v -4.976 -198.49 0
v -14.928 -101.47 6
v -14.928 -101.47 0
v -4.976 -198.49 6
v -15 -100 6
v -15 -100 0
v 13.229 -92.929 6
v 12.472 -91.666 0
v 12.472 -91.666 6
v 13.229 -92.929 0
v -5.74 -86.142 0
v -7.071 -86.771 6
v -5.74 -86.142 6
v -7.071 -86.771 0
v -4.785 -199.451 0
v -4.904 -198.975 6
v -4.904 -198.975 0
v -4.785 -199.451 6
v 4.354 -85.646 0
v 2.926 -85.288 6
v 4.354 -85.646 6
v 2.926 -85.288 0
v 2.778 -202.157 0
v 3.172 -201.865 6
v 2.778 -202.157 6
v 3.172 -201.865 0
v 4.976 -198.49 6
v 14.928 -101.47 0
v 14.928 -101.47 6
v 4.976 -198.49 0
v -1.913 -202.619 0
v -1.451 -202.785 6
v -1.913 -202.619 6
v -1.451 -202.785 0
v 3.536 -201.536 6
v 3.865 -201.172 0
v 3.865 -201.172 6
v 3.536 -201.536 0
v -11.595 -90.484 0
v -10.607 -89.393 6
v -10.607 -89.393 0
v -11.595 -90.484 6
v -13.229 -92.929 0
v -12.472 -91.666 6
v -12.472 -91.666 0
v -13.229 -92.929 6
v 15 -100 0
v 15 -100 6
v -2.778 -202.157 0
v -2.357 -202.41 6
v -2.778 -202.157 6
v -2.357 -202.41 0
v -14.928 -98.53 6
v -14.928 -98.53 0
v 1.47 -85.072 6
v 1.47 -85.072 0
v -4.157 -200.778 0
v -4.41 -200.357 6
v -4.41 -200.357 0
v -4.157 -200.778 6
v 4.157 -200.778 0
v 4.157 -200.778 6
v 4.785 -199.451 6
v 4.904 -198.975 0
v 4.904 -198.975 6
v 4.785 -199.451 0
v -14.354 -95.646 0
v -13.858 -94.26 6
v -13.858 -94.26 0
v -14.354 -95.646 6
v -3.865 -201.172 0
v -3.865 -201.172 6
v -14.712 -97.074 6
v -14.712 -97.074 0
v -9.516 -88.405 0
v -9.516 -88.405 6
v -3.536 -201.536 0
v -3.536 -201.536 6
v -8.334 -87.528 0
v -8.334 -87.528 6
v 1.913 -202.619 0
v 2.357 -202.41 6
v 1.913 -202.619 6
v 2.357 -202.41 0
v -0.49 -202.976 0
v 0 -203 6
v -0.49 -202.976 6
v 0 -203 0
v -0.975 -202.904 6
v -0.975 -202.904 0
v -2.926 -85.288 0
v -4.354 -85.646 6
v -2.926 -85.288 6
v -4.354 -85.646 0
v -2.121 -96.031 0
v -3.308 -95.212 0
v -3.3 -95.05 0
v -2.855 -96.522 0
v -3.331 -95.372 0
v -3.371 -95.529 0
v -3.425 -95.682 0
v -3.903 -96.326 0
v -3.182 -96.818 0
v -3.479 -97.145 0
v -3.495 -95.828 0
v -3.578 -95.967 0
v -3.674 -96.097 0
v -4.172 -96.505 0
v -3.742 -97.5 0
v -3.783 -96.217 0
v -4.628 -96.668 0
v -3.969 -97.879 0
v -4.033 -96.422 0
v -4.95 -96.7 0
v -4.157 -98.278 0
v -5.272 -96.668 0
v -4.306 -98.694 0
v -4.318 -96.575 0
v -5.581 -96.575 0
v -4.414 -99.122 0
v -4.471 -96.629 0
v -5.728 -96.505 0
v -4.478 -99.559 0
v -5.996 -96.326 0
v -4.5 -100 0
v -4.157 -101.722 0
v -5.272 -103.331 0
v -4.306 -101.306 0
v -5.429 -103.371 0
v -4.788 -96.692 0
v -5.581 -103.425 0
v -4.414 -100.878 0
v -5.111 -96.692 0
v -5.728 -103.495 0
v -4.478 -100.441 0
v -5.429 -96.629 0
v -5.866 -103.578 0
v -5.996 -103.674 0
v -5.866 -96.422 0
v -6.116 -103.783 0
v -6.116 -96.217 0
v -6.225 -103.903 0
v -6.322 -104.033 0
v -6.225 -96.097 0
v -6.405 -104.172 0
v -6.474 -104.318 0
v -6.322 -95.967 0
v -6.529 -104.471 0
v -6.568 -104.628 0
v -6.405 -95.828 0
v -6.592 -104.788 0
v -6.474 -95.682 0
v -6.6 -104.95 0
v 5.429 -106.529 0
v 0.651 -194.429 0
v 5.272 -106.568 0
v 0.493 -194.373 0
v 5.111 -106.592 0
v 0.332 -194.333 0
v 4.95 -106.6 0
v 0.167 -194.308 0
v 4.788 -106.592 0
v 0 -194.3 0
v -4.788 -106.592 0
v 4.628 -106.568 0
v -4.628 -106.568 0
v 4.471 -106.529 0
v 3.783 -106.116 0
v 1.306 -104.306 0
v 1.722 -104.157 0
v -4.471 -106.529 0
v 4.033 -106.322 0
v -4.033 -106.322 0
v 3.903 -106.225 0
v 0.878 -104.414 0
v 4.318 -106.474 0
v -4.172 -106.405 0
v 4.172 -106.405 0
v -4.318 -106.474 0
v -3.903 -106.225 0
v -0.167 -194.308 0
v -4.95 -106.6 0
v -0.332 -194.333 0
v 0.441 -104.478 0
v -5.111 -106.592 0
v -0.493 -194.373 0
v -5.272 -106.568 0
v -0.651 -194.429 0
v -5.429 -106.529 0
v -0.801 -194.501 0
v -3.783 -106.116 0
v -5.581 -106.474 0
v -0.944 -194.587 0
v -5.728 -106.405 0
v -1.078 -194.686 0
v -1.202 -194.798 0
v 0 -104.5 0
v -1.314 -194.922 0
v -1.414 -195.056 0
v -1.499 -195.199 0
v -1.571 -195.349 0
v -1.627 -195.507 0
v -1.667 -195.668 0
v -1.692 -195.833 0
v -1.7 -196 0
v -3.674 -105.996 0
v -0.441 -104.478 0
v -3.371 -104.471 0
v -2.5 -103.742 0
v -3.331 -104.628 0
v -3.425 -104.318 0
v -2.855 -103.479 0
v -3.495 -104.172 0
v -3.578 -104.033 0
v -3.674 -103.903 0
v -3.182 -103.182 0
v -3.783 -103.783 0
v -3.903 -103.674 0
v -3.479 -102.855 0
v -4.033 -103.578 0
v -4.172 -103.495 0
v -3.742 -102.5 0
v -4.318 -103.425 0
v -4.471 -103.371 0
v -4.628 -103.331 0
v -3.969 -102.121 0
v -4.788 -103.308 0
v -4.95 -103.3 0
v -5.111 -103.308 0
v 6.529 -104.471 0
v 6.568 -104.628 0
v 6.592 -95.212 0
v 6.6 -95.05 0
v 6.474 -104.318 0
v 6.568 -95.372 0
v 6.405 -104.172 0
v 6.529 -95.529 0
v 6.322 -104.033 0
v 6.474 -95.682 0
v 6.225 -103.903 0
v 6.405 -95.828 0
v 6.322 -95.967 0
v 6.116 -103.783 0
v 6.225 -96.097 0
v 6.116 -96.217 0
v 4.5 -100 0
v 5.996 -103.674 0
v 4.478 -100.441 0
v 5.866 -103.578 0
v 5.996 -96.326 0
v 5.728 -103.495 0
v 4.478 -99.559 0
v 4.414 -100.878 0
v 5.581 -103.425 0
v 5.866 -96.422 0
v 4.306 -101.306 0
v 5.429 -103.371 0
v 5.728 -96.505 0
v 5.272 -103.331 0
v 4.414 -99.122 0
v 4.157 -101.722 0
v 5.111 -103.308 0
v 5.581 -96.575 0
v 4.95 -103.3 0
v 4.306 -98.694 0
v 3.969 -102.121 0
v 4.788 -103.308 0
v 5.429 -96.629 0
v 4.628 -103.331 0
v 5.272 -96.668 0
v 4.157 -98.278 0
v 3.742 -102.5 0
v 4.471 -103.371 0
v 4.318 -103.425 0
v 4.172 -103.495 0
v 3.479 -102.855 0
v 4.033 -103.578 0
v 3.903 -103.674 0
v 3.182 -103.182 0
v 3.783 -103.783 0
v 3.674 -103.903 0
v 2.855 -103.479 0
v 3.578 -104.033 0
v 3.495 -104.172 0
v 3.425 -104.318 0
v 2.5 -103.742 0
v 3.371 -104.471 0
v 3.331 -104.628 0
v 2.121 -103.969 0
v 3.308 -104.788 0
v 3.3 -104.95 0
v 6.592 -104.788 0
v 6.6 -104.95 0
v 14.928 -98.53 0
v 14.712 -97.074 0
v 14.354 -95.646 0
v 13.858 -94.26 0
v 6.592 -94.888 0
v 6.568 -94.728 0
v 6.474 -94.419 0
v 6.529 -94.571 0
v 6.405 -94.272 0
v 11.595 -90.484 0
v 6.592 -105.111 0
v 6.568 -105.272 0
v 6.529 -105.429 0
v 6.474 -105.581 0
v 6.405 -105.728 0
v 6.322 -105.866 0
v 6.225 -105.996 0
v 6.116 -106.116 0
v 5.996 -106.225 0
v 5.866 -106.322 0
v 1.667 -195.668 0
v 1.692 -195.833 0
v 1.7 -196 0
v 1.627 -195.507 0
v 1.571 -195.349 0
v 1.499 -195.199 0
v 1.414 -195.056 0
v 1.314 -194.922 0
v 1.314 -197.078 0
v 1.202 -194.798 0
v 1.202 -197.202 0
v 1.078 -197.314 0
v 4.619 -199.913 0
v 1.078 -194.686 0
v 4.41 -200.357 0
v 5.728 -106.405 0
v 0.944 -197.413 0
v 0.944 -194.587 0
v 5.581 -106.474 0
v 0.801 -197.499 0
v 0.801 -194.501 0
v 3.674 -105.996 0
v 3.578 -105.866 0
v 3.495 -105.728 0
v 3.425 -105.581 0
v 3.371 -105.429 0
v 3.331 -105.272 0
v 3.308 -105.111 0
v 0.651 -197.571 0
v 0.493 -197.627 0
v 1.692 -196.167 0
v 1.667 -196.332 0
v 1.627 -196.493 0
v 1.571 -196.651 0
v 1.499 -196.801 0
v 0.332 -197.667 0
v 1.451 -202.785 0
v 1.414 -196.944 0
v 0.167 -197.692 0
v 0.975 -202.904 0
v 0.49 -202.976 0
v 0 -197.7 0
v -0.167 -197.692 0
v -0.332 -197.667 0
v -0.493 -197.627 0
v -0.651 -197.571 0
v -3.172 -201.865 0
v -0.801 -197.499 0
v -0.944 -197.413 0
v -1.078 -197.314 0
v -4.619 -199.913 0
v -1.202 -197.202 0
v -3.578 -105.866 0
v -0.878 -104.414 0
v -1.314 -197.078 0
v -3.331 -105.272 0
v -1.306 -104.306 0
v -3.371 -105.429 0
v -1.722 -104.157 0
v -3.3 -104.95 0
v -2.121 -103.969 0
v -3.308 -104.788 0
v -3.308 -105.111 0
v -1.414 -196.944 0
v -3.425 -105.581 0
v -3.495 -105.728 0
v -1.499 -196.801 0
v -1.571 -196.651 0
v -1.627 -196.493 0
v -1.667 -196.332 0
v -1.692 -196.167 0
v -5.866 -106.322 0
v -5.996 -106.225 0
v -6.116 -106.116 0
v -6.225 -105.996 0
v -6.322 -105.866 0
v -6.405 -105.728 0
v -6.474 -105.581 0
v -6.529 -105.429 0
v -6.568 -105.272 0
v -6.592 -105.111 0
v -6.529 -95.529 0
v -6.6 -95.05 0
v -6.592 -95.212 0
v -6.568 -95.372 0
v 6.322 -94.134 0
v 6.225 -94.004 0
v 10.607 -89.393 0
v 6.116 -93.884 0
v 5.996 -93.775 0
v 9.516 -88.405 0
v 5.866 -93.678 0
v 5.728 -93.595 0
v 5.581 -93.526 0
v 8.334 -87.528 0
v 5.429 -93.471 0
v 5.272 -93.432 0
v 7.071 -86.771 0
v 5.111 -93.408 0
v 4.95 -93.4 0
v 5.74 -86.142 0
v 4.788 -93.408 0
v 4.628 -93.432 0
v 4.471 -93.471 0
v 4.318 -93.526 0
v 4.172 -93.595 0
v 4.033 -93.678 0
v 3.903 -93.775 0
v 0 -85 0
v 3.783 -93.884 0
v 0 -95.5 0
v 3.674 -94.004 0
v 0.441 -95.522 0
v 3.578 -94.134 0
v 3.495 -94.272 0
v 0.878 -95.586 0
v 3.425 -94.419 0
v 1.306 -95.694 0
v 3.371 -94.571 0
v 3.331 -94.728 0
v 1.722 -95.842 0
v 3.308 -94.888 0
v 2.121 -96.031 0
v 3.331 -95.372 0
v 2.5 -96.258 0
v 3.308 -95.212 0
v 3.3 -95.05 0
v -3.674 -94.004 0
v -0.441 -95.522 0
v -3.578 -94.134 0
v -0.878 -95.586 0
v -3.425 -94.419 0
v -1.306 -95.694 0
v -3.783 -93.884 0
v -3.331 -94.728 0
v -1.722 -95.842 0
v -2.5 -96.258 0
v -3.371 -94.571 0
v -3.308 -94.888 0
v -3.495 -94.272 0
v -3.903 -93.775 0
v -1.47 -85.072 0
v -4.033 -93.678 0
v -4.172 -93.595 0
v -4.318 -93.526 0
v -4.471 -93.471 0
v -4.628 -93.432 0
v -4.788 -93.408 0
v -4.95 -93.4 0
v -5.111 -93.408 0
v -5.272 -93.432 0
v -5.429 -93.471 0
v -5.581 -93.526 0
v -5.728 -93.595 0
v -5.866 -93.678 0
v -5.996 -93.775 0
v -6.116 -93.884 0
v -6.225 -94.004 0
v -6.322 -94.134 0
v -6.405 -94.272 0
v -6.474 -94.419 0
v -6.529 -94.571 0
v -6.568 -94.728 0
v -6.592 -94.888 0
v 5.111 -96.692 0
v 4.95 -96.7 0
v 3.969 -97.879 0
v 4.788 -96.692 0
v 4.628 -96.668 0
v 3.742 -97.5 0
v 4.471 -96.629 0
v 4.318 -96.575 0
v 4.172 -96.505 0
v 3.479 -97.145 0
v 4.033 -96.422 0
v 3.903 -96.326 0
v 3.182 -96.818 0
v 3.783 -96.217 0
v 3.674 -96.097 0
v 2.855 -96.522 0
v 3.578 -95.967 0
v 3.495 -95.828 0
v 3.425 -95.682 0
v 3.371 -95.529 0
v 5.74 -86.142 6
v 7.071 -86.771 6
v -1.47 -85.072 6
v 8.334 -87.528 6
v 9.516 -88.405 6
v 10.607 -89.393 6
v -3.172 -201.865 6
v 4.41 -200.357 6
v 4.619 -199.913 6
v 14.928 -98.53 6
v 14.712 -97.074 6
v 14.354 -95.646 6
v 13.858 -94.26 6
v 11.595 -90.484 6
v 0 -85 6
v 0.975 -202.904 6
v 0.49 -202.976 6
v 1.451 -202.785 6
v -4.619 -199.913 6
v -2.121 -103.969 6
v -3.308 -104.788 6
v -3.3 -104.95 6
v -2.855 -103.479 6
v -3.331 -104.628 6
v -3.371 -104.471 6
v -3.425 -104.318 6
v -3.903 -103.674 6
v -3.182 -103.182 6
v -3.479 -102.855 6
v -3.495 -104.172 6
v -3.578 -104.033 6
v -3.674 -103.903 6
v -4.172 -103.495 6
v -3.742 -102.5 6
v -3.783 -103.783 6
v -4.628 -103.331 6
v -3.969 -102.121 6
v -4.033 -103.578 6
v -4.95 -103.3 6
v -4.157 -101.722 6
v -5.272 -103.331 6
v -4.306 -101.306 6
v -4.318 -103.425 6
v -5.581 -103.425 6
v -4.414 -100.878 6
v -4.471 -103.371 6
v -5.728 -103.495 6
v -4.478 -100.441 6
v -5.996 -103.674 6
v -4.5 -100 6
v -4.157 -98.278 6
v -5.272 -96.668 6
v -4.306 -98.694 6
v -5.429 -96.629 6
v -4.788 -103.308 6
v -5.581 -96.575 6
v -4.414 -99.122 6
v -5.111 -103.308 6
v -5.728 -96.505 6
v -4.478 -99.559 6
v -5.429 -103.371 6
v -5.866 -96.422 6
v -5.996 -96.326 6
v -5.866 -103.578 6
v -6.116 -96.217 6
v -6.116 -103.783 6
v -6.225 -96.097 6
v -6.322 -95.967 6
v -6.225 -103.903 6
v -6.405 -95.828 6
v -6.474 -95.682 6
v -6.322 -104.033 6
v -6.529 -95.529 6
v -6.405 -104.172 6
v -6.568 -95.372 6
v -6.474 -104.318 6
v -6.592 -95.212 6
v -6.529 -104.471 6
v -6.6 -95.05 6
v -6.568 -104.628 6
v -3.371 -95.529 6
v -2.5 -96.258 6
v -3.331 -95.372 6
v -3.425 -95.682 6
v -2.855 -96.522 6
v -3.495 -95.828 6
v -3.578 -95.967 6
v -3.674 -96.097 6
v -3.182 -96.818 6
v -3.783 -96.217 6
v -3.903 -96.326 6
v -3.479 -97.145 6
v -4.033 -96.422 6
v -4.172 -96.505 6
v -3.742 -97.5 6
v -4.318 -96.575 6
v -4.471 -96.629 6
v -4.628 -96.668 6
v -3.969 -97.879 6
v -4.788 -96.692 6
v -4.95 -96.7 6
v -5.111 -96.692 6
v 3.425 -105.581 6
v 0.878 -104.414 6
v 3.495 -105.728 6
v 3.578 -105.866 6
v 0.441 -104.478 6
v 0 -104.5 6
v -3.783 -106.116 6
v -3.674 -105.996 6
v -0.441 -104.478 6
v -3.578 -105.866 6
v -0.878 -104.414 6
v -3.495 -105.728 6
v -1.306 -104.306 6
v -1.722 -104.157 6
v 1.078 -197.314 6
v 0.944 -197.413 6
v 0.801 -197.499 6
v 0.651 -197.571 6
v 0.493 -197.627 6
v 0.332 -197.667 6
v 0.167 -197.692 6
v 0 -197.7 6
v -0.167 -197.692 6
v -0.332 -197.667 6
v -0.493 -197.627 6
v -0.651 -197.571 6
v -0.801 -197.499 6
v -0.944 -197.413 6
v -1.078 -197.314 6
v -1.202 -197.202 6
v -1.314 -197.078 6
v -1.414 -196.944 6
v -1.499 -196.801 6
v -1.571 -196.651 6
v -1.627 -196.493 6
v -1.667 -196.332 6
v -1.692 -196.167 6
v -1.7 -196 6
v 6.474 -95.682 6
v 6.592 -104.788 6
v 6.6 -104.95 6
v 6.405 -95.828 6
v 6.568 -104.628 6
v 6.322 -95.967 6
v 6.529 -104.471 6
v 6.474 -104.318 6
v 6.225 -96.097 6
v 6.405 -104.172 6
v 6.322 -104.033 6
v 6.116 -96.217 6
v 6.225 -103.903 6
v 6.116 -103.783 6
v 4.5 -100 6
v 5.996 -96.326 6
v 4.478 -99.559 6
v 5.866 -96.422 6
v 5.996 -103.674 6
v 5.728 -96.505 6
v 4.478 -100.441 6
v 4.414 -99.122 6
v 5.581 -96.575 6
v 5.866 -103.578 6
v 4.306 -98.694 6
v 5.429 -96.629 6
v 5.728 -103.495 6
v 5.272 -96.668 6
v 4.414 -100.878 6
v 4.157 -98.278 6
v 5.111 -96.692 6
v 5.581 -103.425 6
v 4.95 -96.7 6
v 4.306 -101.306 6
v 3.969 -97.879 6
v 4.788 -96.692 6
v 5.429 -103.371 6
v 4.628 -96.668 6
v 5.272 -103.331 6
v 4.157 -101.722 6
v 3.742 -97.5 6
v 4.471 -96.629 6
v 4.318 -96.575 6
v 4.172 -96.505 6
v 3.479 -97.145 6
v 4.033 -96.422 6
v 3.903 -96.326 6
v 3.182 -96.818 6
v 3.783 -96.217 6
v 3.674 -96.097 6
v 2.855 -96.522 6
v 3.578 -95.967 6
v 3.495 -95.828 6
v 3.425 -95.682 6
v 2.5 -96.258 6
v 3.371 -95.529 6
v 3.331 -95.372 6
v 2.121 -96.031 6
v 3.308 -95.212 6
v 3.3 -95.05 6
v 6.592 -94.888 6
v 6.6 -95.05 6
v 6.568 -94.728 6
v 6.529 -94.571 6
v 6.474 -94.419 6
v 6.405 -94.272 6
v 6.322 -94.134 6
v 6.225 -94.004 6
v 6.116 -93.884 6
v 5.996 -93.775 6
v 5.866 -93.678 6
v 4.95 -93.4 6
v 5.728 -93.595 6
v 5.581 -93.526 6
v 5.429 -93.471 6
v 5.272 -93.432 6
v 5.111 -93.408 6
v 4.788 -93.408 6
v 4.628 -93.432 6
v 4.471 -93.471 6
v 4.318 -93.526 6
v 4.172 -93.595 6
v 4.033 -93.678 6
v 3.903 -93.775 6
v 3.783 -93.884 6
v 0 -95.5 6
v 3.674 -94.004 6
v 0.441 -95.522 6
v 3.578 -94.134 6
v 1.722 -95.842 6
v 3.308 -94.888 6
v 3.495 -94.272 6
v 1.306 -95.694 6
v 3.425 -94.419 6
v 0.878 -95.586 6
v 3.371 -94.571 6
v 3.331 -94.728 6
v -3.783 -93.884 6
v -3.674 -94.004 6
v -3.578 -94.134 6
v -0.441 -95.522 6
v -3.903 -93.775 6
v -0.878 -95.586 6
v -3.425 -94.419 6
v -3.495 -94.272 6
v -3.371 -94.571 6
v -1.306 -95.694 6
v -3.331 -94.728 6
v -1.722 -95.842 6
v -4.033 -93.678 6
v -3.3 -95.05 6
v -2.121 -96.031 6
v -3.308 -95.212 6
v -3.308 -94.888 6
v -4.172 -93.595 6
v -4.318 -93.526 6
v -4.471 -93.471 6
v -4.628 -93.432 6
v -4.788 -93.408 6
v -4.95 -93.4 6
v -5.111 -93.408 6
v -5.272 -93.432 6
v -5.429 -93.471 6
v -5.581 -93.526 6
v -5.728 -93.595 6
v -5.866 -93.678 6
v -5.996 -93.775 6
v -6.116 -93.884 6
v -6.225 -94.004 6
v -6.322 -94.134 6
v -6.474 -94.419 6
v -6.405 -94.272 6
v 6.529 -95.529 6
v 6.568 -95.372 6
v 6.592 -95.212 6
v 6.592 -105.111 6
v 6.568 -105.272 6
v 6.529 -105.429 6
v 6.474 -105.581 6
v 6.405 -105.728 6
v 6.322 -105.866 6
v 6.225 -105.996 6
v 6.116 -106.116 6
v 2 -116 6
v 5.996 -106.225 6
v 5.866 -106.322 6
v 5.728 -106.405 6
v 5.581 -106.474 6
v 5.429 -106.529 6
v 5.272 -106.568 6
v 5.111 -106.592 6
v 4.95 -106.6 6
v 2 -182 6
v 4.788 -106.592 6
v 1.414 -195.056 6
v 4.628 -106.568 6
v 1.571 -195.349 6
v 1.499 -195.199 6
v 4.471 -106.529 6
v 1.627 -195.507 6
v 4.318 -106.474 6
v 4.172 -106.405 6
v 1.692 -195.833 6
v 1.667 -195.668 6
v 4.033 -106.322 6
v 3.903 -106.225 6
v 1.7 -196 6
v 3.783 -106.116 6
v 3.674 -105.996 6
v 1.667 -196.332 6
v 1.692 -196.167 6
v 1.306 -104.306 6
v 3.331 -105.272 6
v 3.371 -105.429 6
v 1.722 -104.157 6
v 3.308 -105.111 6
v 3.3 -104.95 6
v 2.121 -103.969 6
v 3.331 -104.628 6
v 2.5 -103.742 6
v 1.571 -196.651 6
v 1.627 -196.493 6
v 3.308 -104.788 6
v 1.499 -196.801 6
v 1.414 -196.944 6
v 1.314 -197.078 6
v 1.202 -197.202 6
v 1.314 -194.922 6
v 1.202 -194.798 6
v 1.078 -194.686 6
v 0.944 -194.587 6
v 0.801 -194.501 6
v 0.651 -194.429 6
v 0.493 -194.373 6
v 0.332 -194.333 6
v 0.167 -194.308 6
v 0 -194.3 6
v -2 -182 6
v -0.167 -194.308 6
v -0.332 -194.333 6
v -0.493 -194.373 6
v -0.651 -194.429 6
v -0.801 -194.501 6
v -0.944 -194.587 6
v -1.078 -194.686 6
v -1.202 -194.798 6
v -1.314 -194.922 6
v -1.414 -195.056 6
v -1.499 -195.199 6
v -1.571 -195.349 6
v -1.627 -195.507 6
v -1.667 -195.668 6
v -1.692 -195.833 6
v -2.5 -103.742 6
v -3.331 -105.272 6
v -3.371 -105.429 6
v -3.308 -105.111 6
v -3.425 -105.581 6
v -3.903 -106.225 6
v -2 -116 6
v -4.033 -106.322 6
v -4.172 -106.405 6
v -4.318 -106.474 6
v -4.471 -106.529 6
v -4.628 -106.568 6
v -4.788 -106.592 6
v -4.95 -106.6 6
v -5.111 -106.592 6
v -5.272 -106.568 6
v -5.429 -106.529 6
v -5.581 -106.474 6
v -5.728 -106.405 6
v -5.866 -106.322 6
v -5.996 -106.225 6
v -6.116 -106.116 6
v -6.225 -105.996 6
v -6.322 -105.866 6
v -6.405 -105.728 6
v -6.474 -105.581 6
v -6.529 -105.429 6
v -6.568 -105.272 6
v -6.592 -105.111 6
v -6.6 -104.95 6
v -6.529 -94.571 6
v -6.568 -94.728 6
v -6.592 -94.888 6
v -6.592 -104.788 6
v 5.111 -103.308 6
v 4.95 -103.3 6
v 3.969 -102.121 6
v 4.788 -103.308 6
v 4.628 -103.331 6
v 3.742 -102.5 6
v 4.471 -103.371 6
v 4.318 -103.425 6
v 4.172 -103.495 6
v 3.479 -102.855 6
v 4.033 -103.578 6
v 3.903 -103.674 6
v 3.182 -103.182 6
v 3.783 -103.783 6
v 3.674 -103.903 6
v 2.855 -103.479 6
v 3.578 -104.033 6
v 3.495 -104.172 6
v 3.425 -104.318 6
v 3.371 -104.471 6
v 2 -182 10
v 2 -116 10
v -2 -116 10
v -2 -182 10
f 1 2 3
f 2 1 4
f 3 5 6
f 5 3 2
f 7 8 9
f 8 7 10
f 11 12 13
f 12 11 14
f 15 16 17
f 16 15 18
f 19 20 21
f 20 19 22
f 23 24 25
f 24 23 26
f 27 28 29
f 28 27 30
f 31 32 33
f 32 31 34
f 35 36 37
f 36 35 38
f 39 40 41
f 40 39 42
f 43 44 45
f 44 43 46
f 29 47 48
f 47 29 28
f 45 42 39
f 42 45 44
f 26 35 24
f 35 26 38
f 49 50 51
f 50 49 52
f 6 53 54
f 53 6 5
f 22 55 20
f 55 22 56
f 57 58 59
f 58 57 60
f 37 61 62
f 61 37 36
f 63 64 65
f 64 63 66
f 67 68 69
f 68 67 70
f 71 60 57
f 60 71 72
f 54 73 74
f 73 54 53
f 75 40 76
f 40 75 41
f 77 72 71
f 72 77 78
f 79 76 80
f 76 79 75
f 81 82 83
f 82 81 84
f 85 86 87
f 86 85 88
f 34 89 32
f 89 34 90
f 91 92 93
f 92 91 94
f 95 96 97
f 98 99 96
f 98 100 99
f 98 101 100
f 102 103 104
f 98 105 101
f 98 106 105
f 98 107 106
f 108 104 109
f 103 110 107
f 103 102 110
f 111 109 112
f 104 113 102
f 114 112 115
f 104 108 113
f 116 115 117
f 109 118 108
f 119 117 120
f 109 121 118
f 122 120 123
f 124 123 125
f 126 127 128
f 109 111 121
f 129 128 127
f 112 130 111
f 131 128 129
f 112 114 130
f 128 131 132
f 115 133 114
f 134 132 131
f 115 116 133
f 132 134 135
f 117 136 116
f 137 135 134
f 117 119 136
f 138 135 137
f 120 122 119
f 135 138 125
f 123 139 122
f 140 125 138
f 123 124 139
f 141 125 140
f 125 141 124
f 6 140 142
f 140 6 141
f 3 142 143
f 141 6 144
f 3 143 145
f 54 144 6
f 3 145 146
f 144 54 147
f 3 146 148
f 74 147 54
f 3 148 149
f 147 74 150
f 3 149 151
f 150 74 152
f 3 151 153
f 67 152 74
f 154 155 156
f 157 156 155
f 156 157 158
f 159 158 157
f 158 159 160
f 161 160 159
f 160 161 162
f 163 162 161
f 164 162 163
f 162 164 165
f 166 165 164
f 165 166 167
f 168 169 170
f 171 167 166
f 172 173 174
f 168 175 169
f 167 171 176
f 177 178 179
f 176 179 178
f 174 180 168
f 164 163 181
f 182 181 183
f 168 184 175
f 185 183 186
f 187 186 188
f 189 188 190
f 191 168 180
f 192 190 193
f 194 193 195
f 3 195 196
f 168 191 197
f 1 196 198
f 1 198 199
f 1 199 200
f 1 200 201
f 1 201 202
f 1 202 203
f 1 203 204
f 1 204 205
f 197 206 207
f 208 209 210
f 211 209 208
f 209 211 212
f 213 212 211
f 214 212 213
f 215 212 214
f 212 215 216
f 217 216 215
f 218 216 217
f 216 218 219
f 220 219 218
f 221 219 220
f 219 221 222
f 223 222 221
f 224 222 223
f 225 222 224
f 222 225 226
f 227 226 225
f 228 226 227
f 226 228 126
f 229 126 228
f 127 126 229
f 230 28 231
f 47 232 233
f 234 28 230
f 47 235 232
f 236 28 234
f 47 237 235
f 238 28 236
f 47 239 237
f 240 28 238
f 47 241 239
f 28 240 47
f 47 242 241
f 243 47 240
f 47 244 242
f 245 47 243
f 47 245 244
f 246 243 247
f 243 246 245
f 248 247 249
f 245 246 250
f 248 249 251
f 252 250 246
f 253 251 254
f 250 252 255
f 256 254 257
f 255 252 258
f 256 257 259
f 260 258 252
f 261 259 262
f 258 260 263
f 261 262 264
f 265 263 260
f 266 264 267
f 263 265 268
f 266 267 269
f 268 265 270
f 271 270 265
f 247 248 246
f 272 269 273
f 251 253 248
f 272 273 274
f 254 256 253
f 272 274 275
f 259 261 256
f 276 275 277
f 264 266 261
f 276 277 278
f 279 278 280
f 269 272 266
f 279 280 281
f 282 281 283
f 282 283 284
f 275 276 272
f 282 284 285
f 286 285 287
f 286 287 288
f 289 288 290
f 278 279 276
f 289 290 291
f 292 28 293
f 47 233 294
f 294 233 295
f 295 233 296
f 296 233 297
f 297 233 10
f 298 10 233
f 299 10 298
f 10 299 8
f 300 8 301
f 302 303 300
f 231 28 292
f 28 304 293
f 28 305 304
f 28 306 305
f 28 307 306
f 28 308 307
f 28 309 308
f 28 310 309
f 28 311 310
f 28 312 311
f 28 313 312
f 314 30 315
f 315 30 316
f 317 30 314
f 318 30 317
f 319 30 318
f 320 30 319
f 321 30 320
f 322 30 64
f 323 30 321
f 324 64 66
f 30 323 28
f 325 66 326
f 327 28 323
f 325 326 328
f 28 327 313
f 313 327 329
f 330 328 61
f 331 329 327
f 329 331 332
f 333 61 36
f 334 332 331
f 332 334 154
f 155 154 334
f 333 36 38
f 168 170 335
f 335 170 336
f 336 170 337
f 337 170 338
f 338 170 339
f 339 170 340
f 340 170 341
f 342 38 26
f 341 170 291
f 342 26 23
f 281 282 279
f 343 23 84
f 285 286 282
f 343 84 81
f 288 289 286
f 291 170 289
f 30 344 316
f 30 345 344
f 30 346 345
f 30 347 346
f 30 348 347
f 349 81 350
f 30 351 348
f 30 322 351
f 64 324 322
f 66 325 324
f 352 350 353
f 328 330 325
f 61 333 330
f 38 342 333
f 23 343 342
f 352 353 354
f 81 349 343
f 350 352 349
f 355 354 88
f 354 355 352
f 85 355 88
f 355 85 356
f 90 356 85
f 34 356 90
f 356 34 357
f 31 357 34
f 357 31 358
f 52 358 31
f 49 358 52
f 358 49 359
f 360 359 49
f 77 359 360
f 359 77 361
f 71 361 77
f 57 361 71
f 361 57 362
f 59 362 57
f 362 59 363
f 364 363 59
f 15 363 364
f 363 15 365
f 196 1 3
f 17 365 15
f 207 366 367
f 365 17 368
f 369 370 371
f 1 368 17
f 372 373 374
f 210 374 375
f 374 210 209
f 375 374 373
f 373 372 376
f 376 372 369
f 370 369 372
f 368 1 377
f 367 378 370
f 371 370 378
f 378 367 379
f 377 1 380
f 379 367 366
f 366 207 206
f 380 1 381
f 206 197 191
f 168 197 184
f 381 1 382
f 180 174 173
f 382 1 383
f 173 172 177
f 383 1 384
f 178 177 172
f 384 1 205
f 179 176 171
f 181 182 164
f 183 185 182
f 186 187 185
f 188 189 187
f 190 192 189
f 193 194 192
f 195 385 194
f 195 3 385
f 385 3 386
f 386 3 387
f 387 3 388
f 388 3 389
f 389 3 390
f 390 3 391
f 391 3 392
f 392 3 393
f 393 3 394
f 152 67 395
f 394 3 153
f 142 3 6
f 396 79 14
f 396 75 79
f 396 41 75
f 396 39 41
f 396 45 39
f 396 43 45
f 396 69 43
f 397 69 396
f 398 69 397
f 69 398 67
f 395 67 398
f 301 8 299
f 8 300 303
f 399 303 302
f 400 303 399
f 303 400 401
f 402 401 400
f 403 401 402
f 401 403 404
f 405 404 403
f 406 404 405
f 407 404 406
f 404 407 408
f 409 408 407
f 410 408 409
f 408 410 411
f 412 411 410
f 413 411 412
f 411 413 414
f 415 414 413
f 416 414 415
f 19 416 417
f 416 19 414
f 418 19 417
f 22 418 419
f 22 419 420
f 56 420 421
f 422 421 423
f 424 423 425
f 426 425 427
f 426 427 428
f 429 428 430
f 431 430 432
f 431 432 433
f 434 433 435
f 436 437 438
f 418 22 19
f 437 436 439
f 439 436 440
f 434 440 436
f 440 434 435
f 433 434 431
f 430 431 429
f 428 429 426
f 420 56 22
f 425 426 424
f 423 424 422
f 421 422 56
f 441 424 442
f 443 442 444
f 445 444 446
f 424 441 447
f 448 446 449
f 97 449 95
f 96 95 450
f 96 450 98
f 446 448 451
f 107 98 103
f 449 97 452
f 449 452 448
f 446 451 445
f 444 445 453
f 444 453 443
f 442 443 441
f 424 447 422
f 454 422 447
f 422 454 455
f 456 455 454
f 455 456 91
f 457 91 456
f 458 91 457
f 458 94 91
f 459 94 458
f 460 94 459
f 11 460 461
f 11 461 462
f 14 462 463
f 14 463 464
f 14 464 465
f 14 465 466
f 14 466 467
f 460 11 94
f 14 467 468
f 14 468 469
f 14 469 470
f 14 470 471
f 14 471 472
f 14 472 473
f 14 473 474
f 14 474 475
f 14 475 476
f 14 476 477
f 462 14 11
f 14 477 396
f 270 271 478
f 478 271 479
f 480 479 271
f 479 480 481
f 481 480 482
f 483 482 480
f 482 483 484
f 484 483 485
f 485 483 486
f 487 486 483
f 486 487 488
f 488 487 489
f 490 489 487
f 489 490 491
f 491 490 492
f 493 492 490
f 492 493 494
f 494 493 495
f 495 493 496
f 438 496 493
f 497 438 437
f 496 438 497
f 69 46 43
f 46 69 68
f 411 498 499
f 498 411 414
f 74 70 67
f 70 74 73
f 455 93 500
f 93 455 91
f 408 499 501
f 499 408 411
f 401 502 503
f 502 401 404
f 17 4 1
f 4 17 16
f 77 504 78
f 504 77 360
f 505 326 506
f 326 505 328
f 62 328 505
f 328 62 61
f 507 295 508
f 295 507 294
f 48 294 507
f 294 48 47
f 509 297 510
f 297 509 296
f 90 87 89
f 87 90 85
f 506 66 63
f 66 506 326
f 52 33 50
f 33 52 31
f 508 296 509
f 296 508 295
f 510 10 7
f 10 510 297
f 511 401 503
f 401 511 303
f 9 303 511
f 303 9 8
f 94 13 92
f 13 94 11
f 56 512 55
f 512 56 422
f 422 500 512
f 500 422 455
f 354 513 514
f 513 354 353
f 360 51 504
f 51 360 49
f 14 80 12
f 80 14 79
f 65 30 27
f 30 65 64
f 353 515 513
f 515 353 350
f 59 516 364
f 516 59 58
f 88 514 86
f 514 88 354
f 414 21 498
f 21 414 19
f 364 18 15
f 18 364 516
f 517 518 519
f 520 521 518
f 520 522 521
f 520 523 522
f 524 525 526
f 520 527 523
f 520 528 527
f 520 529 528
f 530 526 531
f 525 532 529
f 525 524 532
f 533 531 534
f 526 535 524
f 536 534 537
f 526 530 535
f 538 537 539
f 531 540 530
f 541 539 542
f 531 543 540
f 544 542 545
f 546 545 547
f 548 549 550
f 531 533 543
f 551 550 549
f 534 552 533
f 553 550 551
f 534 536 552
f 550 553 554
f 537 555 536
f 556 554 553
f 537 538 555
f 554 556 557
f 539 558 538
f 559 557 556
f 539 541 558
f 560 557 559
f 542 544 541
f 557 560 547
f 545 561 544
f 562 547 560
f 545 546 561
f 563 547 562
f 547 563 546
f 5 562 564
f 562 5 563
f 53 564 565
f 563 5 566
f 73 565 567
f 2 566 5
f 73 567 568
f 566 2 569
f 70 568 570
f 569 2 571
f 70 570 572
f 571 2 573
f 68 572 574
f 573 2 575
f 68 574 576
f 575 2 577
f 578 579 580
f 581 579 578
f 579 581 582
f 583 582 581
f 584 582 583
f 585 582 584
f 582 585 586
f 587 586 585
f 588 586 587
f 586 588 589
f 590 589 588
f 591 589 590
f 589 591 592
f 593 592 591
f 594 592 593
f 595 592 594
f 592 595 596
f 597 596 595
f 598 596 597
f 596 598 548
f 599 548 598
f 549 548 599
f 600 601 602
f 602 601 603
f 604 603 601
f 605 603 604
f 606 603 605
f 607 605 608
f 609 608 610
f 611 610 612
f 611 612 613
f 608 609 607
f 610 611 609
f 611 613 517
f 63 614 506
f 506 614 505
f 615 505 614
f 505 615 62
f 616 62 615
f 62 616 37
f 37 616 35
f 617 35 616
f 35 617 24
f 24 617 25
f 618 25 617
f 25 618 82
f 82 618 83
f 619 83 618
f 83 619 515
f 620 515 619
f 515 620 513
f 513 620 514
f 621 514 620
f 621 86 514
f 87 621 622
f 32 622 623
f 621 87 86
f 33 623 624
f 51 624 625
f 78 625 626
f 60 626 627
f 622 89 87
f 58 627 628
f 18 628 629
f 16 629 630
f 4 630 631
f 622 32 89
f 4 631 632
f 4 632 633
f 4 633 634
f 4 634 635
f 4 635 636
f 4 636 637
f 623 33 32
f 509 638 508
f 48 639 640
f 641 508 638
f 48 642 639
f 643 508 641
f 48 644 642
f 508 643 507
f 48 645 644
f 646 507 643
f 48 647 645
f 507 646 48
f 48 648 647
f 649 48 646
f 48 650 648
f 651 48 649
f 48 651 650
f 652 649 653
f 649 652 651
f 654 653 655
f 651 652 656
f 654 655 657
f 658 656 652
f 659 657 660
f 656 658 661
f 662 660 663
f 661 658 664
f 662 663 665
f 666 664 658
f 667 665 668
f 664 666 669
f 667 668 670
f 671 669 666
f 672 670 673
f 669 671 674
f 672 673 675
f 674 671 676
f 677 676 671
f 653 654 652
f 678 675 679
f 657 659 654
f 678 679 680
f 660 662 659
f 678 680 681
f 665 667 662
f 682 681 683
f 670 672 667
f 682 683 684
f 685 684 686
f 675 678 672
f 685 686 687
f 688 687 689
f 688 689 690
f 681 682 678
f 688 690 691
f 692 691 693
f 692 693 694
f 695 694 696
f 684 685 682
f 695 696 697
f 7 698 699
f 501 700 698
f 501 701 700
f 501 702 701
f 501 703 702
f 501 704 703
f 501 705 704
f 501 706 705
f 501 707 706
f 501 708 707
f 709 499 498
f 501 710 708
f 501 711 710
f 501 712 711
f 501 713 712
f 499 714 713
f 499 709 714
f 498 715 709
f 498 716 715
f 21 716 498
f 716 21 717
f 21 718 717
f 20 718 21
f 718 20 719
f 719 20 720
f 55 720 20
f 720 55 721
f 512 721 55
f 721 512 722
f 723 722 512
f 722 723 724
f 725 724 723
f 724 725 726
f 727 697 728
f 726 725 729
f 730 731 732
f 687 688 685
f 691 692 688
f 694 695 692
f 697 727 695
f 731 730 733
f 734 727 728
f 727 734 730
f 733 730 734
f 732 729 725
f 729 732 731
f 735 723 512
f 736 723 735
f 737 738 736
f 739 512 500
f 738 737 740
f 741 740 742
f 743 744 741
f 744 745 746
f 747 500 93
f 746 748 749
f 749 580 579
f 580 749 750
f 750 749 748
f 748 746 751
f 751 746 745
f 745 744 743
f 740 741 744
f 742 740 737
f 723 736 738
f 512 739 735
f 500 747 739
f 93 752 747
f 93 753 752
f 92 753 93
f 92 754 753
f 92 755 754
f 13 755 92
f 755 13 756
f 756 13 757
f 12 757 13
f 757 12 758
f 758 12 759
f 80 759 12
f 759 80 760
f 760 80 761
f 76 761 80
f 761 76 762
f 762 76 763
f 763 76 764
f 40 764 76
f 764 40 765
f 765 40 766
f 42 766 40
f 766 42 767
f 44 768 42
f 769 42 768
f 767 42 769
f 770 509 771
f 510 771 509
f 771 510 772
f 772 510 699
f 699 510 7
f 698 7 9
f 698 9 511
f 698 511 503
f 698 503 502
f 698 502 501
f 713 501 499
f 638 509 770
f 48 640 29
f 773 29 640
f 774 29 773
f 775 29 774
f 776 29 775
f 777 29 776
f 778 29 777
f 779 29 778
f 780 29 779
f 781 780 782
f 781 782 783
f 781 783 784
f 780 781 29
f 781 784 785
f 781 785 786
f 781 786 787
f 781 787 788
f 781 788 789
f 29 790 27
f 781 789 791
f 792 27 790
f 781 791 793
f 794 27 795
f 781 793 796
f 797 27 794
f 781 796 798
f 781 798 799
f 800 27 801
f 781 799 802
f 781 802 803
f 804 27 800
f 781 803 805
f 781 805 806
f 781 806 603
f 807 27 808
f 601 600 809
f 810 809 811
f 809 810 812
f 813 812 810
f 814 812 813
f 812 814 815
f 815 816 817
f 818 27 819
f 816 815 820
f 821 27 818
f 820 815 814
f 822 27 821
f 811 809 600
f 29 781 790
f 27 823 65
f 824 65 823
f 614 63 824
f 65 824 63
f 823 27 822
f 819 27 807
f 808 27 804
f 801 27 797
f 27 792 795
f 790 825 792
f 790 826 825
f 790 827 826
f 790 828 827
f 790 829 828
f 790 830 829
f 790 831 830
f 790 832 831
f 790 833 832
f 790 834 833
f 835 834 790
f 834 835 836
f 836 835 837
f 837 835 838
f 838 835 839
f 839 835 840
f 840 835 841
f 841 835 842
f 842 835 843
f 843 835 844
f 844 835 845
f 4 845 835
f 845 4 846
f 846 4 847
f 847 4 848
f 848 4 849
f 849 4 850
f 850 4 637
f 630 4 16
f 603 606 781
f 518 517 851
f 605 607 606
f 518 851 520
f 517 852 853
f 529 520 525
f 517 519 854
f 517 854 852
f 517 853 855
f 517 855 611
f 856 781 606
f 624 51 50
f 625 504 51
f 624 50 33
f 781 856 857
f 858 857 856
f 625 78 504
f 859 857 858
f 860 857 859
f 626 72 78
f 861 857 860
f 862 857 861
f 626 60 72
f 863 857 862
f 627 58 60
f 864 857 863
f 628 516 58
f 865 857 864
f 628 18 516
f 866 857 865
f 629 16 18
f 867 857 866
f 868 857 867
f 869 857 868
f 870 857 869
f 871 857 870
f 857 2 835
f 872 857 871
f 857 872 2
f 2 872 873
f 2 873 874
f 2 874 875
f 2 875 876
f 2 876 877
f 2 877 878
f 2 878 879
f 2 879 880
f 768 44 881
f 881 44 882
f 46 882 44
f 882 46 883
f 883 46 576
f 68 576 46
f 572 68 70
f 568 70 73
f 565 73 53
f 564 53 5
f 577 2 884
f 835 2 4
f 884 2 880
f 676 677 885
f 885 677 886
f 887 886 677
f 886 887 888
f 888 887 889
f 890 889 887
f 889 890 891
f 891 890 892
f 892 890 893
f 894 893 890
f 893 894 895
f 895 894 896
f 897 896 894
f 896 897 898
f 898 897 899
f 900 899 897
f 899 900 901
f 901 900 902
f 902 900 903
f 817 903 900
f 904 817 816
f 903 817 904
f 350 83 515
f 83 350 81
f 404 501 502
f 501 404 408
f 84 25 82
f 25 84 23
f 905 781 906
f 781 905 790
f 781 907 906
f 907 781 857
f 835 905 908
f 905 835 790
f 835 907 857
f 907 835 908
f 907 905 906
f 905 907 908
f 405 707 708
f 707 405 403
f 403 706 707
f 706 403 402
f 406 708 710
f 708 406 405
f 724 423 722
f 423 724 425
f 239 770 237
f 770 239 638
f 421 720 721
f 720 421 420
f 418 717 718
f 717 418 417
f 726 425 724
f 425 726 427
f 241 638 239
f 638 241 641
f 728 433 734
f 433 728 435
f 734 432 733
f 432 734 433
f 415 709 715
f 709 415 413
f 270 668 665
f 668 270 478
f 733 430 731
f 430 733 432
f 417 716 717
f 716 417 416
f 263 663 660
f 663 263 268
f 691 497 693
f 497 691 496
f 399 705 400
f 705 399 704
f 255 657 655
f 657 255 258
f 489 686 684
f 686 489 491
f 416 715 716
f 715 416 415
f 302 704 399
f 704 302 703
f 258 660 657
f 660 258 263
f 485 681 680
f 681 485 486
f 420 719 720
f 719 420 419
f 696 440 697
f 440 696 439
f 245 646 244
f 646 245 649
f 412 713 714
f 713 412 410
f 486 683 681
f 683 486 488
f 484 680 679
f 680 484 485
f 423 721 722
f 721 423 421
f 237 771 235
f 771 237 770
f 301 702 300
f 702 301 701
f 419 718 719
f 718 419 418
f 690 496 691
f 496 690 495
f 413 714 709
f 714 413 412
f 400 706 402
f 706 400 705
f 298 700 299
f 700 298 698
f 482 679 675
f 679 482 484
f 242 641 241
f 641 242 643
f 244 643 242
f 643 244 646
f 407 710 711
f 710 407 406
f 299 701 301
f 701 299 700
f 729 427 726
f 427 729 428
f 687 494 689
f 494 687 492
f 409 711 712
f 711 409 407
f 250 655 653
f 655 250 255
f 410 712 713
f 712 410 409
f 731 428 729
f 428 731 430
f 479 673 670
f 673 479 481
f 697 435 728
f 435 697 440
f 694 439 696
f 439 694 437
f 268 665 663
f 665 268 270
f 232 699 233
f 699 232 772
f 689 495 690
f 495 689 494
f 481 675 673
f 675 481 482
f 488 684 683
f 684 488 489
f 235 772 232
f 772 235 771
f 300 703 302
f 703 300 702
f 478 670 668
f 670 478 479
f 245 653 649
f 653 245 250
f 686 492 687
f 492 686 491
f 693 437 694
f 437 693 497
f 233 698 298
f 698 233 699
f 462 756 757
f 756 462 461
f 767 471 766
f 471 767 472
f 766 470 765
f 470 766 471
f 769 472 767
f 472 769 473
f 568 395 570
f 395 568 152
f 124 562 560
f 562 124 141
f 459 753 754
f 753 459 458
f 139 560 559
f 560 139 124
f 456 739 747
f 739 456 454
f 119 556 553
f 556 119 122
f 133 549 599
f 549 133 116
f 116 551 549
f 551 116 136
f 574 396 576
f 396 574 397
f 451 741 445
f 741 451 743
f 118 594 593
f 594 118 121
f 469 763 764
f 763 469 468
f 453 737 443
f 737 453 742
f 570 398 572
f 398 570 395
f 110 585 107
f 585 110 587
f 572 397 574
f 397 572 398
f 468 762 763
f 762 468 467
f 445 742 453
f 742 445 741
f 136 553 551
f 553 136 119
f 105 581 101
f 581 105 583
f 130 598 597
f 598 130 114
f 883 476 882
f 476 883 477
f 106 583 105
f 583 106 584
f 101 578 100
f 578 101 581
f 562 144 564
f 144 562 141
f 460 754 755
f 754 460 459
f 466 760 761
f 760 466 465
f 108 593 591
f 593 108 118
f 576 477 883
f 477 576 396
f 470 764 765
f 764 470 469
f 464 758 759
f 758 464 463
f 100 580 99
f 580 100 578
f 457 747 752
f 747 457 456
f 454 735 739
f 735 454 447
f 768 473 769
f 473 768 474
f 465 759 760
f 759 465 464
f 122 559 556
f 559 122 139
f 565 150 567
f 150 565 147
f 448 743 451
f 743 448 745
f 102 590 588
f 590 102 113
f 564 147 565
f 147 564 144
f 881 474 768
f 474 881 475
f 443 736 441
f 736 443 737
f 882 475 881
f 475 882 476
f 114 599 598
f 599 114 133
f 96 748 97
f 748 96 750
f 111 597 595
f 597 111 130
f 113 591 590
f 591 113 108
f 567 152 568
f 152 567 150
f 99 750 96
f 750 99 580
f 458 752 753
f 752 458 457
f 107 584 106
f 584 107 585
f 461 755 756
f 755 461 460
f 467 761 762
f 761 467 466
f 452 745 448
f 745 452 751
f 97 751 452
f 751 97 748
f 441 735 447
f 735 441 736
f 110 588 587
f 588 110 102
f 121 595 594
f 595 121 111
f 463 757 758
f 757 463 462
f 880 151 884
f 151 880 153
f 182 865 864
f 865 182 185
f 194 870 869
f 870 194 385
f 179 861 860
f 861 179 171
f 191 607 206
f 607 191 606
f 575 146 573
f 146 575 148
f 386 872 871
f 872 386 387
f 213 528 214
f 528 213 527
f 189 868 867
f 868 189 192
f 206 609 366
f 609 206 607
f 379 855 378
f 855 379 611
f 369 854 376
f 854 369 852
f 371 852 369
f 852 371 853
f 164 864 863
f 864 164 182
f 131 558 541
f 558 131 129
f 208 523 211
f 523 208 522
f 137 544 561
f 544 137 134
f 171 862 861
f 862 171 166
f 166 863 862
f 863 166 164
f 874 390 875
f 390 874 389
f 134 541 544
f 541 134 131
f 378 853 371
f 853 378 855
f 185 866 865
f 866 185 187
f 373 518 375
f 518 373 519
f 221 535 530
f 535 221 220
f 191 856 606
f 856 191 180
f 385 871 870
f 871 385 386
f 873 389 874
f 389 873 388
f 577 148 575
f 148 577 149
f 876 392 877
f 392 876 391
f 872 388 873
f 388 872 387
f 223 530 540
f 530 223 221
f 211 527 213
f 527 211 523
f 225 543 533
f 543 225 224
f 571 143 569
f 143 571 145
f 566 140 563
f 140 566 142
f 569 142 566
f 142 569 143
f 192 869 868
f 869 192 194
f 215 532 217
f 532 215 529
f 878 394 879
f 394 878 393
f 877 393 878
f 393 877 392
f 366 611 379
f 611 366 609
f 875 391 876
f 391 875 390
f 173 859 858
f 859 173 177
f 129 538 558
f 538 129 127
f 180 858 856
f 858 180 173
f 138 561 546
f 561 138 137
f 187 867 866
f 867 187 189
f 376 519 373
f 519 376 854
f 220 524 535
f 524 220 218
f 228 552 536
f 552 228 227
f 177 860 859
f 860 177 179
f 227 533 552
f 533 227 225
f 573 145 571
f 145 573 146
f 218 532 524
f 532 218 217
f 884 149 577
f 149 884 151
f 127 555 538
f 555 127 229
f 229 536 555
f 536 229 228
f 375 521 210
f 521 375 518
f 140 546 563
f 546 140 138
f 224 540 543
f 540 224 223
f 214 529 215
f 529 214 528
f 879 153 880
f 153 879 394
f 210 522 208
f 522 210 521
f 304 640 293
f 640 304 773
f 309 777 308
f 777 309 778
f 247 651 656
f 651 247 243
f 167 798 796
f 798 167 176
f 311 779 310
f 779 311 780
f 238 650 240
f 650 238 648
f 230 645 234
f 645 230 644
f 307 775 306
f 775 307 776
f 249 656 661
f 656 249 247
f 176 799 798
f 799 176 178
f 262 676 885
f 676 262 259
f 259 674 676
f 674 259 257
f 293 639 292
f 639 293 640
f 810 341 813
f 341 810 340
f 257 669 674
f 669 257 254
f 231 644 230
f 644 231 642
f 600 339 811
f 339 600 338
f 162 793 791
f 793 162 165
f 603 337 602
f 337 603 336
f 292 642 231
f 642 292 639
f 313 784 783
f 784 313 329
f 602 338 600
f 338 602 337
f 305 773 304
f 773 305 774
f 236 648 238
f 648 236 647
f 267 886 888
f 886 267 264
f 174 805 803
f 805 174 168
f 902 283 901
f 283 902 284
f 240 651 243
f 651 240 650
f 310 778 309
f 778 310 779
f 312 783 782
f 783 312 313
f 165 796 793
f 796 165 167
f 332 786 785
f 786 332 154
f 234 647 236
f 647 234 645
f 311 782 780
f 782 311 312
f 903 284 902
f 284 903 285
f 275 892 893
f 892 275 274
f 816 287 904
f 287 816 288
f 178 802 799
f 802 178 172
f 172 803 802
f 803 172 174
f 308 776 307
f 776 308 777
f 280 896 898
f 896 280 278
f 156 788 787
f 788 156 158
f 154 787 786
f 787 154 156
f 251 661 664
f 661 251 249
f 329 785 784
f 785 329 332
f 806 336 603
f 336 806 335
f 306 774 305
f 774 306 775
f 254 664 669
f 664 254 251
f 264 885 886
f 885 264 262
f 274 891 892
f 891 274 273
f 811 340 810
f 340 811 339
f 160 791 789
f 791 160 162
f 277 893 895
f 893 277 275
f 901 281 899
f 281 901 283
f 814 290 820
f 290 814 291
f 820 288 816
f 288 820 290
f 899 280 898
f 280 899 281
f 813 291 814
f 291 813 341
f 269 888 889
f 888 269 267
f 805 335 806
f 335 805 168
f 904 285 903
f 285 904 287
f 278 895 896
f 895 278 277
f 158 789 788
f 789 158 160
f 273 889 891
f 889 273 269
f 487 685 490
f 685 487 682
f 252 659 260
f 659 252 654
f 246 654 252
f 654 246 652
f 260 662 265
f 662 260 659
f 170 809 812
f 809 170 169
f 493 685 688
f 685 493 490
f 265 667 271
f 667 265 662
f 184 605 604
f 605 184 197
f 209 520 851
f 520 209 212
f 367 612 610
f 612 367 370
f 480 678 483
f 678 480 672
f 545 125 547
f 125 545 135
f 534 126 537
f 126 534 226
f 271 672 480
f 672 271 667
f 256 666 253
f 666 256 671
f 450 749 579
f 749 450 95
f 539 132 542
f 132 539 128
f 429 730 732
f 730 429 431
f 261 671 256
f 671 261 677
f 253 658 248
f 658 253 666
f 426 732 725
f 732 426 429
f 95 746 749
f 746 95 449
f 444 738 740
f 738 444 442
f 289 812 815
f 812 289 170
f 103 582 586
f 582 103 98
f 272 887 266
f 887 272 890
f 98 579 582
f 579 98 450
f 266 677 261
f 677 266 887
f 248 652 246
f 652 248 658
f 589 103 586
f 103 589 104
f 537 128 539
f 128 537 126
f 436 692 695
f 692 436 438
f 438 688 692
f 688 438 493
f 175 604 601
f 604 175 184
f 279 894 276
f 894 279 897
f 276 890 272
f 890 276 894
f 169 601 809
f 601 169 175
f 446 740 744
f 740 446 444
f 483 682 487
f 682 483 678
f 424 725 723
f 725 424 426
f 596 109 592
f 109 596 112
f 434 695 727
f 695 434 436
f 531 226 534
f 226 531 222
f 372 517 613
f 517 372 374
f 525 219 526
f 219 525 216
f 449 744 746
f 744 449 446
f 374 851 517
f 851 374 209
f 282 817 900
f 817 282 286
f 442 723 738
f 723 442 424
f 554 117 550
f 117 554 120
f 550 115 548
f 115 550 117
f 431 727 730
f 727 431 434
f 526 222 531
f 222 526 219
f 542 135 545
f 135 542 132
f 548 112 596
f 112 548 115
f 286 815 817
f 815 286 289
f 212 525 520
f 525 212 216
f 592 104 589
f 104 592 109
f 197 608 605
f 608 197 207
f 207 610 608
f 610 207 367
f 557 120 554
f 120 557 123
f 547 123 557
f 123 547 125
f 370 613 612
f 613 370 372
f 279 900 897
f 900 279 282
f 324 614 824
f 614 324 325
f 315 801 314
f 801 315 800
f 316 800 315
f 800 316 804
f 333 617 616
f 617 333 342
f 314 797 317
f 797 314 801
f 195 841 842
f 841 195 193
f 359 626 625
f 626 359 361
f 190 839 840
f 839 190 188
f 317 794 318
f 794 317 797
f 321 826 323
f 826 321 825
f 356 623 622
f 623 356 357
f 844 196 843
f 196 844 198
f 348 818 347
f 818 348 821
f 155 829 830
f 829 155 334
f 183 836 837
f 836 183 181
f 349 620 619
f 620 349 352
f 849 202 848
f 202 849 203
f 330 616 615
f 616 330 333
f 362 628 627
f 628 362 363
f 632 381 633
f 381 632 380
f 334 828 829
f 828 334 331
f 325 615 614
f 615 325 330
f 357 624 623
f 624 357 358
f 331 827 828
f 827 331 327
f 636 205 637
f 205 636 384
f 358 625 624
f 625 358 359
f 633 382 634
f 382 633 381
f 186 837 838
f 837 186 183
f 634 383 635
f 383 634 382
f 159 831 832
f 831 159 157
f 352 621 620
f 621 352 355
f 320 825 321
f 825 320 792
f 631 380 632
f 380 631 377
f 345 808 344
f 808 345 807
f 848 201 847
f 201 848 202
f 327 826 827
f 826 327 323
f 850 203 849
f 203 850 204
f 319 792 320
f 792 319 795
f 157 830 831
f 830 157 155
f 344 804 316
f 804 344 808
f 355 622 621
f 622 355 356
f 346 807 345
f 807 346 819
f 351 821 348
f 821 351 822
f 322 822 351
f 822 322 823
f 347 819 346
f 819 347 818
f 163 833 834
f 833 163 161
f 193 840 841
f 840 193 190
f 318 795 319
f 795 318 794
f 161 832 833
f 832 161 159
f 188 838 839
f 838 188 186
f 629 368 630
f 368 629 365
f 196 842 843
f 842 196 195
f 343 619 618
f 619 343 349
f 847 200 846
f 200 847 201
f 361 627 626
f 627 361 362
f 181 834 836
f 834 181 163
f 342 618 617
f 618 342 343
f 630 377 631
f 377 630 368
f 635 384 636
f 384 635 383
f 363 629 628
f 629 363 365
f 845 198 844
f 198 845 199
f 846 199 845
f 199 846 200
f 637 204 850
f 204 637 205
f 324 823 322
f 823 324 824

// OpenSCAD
// file: ../params.scad
// =====================================================================
//  "Pip" robot dog — shared parameters (all units mm)
//  Every printed part pulls its dimensions from here, so if your servos
//  or horns measure differently, change them HERE and re-export STLs.
// =====================================================================

$fn = 64;

// ---------- Servo: "standard" size 20-35 kg·cm digital servo -----------
// Defaults match DS3218 / DS3225 / most 40x20 mm metal-gear servos.
// MEASURE YOURS WITH CALIPERS before printing the full set.
servo_len        = 40.5;   // long axis of the case
servo_wid        = 20.2;   // short axis of the case
servo_hgt        = 40.5;   // case bottom -> case top face (excl. shaft)
servo_shaft_off  = 10.2;   // shaft centre -> nearest short end of case
servo_flange_len = 54.5;   // tip-to-tip length of the mounting ears
servo_flange_t   = 2.5;    // ear thickness
servo_flange_top = 10.5;   // case top face -> top surface of ears
servo_hole_pitch = 49.5;   // ear hole spacing along long axis
servo_hole_span  = 10.0;   // ear hole spacing across short axis
horn_stack       = 7.0;    // case top face -> outer face of metal disc horn

// Metal disc horn (25T) bolt pattern. Most "25T aluminium disc horns"
// have 4 x M3 holes on a ~14 mm circle — CHECK YOURS.
horn_bolt_r      = 7.0;
horn_bolt_d      = 3.3;    // M3 clearance
horn_hub_clear_d = 9.0;    // lets you reach the centre spline screw
horn_disc_d      = 24.0;

// ---------- Fasteners -------------------------------------------------
m3_clear   = 3.4;
m3_insert  = 4.0;          // hole for M3 brass heat-set insert (OD ~4.6)
m3_insert_depth = 5.5;
fit        = 0.4;          // clearance added around servo cases

// ---------- Body geometry ---------------------------------------------
bx   = 95;      // hip pitch axis X position (front +, rear -)
by   = 39;      // roll axis Y offset from body centre line (ears of L/R roll servos must not collide)
wall = 3;       // general wall thickness
plate_t = 6;    // thickness of the plate that clamps a servo ear

// derived: roll servo case top (faces +X at the front hips)
roll_case_top_x   = bx - 24;                      // see docs/ASSEMBLY.md
chassis_front_x   = roll_case_top_x - (servo_flange_top - plate_t); // = bx-28.5
chassis_half_len  = chassis_front_x;
chassis_half_wid  = by + (servo_flange_len - servo_len) / 2 + servo_shaft_off + wall + 1;
chassis_z_bot     = -16;
chassis_z_top     = 16;

// hip housing
hip_plate_x0   = roll_case_top_x + horn_stack;    // back face of horn plate
hip_plate_t    = 5;
pitch_case_top = 22;                              // outboard offset of pitch case top from roll axis

// leg segments
upper_len   = 100;     // L2: hip pitch axis -> knee axis
lower_len   = 100;     // L3: knee axis -> foot contact centre
leg_w       = 32;      // upper-leg plate width
leg_t       = 6;       // leg plate thickness
foot_d      = 22;      // TPU foot ball diameter

// lateral stack (outboard distances from roll axis, Y)
upper_in    = pitch_case_top + horn_stack;        // inboard face of upper leg plate
upper_out   = upper_in + leg_t;
knee_case_top = upper_in + servo_flange_top;      // knee case top (outboard)
lower_in    = knee_case_top + horn_stack;
lower_out   = lower_in + leg_t;
// L1 — abduction offset used by the kinematics (software/config.yaml)
L1 = (lower_in + lower_out) / 2;                  // = 49.5 with defaults

echo(str("L1 (abduction offset) = ", L1, " mm"));
echo(str("Body length (hip to hip) = ", 2 * bx, " mm"));
echo(str("Chassis = ", 2 * chassis_half_len, " x ", 2 * chassis_half_wid, " mm"));
// main file
// Print 4x (all identical). Flat face down, rib up. No supports.
include <../lib.scad>
translate([-bx, 0, -by - lower_in]) rotate([-90, 0, 0]) lower_leg();
